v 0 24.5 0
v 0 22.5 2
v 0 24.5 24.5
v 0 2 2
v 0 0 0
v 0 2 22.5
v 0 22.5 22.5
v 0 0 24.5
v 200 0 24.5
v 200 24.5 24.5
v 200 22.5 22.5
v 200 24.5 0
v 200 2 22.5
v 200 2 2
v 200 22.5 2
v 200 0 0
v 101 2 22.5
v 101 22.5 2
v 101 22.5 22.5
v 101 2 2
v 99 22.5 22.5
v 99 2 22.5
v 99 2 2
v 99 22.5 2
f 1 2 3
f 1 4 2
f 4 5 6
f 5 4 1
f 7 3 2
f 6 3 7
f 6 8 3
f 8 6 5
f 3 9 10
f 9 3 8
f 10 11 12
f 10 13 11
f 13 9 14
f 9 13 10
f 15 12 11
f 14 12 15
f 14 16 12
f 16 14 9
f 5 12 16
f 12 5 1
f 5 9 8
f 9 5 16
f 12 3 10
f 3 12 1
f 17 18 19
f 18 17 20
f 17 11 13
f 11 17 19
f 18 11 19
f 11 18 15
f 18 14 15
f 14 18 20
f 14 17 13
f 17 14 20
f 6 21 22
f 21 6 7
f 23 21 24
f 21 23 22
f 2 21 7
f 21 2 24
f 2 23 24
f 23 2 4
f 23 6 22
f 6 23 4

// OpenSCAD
tubeWidth = 20.5;
border = 2;

difference() {    
    cube([200, tubeWidth + border*2, tubeWidth + border*2]);
    
    translate([100 + border/2, border, border])
    cube([100, tubeWidth, tubeWidth]);
    
    translate([-border/2, border, border])
    cube([100, tubeWidth, tubeWidth]);
}
